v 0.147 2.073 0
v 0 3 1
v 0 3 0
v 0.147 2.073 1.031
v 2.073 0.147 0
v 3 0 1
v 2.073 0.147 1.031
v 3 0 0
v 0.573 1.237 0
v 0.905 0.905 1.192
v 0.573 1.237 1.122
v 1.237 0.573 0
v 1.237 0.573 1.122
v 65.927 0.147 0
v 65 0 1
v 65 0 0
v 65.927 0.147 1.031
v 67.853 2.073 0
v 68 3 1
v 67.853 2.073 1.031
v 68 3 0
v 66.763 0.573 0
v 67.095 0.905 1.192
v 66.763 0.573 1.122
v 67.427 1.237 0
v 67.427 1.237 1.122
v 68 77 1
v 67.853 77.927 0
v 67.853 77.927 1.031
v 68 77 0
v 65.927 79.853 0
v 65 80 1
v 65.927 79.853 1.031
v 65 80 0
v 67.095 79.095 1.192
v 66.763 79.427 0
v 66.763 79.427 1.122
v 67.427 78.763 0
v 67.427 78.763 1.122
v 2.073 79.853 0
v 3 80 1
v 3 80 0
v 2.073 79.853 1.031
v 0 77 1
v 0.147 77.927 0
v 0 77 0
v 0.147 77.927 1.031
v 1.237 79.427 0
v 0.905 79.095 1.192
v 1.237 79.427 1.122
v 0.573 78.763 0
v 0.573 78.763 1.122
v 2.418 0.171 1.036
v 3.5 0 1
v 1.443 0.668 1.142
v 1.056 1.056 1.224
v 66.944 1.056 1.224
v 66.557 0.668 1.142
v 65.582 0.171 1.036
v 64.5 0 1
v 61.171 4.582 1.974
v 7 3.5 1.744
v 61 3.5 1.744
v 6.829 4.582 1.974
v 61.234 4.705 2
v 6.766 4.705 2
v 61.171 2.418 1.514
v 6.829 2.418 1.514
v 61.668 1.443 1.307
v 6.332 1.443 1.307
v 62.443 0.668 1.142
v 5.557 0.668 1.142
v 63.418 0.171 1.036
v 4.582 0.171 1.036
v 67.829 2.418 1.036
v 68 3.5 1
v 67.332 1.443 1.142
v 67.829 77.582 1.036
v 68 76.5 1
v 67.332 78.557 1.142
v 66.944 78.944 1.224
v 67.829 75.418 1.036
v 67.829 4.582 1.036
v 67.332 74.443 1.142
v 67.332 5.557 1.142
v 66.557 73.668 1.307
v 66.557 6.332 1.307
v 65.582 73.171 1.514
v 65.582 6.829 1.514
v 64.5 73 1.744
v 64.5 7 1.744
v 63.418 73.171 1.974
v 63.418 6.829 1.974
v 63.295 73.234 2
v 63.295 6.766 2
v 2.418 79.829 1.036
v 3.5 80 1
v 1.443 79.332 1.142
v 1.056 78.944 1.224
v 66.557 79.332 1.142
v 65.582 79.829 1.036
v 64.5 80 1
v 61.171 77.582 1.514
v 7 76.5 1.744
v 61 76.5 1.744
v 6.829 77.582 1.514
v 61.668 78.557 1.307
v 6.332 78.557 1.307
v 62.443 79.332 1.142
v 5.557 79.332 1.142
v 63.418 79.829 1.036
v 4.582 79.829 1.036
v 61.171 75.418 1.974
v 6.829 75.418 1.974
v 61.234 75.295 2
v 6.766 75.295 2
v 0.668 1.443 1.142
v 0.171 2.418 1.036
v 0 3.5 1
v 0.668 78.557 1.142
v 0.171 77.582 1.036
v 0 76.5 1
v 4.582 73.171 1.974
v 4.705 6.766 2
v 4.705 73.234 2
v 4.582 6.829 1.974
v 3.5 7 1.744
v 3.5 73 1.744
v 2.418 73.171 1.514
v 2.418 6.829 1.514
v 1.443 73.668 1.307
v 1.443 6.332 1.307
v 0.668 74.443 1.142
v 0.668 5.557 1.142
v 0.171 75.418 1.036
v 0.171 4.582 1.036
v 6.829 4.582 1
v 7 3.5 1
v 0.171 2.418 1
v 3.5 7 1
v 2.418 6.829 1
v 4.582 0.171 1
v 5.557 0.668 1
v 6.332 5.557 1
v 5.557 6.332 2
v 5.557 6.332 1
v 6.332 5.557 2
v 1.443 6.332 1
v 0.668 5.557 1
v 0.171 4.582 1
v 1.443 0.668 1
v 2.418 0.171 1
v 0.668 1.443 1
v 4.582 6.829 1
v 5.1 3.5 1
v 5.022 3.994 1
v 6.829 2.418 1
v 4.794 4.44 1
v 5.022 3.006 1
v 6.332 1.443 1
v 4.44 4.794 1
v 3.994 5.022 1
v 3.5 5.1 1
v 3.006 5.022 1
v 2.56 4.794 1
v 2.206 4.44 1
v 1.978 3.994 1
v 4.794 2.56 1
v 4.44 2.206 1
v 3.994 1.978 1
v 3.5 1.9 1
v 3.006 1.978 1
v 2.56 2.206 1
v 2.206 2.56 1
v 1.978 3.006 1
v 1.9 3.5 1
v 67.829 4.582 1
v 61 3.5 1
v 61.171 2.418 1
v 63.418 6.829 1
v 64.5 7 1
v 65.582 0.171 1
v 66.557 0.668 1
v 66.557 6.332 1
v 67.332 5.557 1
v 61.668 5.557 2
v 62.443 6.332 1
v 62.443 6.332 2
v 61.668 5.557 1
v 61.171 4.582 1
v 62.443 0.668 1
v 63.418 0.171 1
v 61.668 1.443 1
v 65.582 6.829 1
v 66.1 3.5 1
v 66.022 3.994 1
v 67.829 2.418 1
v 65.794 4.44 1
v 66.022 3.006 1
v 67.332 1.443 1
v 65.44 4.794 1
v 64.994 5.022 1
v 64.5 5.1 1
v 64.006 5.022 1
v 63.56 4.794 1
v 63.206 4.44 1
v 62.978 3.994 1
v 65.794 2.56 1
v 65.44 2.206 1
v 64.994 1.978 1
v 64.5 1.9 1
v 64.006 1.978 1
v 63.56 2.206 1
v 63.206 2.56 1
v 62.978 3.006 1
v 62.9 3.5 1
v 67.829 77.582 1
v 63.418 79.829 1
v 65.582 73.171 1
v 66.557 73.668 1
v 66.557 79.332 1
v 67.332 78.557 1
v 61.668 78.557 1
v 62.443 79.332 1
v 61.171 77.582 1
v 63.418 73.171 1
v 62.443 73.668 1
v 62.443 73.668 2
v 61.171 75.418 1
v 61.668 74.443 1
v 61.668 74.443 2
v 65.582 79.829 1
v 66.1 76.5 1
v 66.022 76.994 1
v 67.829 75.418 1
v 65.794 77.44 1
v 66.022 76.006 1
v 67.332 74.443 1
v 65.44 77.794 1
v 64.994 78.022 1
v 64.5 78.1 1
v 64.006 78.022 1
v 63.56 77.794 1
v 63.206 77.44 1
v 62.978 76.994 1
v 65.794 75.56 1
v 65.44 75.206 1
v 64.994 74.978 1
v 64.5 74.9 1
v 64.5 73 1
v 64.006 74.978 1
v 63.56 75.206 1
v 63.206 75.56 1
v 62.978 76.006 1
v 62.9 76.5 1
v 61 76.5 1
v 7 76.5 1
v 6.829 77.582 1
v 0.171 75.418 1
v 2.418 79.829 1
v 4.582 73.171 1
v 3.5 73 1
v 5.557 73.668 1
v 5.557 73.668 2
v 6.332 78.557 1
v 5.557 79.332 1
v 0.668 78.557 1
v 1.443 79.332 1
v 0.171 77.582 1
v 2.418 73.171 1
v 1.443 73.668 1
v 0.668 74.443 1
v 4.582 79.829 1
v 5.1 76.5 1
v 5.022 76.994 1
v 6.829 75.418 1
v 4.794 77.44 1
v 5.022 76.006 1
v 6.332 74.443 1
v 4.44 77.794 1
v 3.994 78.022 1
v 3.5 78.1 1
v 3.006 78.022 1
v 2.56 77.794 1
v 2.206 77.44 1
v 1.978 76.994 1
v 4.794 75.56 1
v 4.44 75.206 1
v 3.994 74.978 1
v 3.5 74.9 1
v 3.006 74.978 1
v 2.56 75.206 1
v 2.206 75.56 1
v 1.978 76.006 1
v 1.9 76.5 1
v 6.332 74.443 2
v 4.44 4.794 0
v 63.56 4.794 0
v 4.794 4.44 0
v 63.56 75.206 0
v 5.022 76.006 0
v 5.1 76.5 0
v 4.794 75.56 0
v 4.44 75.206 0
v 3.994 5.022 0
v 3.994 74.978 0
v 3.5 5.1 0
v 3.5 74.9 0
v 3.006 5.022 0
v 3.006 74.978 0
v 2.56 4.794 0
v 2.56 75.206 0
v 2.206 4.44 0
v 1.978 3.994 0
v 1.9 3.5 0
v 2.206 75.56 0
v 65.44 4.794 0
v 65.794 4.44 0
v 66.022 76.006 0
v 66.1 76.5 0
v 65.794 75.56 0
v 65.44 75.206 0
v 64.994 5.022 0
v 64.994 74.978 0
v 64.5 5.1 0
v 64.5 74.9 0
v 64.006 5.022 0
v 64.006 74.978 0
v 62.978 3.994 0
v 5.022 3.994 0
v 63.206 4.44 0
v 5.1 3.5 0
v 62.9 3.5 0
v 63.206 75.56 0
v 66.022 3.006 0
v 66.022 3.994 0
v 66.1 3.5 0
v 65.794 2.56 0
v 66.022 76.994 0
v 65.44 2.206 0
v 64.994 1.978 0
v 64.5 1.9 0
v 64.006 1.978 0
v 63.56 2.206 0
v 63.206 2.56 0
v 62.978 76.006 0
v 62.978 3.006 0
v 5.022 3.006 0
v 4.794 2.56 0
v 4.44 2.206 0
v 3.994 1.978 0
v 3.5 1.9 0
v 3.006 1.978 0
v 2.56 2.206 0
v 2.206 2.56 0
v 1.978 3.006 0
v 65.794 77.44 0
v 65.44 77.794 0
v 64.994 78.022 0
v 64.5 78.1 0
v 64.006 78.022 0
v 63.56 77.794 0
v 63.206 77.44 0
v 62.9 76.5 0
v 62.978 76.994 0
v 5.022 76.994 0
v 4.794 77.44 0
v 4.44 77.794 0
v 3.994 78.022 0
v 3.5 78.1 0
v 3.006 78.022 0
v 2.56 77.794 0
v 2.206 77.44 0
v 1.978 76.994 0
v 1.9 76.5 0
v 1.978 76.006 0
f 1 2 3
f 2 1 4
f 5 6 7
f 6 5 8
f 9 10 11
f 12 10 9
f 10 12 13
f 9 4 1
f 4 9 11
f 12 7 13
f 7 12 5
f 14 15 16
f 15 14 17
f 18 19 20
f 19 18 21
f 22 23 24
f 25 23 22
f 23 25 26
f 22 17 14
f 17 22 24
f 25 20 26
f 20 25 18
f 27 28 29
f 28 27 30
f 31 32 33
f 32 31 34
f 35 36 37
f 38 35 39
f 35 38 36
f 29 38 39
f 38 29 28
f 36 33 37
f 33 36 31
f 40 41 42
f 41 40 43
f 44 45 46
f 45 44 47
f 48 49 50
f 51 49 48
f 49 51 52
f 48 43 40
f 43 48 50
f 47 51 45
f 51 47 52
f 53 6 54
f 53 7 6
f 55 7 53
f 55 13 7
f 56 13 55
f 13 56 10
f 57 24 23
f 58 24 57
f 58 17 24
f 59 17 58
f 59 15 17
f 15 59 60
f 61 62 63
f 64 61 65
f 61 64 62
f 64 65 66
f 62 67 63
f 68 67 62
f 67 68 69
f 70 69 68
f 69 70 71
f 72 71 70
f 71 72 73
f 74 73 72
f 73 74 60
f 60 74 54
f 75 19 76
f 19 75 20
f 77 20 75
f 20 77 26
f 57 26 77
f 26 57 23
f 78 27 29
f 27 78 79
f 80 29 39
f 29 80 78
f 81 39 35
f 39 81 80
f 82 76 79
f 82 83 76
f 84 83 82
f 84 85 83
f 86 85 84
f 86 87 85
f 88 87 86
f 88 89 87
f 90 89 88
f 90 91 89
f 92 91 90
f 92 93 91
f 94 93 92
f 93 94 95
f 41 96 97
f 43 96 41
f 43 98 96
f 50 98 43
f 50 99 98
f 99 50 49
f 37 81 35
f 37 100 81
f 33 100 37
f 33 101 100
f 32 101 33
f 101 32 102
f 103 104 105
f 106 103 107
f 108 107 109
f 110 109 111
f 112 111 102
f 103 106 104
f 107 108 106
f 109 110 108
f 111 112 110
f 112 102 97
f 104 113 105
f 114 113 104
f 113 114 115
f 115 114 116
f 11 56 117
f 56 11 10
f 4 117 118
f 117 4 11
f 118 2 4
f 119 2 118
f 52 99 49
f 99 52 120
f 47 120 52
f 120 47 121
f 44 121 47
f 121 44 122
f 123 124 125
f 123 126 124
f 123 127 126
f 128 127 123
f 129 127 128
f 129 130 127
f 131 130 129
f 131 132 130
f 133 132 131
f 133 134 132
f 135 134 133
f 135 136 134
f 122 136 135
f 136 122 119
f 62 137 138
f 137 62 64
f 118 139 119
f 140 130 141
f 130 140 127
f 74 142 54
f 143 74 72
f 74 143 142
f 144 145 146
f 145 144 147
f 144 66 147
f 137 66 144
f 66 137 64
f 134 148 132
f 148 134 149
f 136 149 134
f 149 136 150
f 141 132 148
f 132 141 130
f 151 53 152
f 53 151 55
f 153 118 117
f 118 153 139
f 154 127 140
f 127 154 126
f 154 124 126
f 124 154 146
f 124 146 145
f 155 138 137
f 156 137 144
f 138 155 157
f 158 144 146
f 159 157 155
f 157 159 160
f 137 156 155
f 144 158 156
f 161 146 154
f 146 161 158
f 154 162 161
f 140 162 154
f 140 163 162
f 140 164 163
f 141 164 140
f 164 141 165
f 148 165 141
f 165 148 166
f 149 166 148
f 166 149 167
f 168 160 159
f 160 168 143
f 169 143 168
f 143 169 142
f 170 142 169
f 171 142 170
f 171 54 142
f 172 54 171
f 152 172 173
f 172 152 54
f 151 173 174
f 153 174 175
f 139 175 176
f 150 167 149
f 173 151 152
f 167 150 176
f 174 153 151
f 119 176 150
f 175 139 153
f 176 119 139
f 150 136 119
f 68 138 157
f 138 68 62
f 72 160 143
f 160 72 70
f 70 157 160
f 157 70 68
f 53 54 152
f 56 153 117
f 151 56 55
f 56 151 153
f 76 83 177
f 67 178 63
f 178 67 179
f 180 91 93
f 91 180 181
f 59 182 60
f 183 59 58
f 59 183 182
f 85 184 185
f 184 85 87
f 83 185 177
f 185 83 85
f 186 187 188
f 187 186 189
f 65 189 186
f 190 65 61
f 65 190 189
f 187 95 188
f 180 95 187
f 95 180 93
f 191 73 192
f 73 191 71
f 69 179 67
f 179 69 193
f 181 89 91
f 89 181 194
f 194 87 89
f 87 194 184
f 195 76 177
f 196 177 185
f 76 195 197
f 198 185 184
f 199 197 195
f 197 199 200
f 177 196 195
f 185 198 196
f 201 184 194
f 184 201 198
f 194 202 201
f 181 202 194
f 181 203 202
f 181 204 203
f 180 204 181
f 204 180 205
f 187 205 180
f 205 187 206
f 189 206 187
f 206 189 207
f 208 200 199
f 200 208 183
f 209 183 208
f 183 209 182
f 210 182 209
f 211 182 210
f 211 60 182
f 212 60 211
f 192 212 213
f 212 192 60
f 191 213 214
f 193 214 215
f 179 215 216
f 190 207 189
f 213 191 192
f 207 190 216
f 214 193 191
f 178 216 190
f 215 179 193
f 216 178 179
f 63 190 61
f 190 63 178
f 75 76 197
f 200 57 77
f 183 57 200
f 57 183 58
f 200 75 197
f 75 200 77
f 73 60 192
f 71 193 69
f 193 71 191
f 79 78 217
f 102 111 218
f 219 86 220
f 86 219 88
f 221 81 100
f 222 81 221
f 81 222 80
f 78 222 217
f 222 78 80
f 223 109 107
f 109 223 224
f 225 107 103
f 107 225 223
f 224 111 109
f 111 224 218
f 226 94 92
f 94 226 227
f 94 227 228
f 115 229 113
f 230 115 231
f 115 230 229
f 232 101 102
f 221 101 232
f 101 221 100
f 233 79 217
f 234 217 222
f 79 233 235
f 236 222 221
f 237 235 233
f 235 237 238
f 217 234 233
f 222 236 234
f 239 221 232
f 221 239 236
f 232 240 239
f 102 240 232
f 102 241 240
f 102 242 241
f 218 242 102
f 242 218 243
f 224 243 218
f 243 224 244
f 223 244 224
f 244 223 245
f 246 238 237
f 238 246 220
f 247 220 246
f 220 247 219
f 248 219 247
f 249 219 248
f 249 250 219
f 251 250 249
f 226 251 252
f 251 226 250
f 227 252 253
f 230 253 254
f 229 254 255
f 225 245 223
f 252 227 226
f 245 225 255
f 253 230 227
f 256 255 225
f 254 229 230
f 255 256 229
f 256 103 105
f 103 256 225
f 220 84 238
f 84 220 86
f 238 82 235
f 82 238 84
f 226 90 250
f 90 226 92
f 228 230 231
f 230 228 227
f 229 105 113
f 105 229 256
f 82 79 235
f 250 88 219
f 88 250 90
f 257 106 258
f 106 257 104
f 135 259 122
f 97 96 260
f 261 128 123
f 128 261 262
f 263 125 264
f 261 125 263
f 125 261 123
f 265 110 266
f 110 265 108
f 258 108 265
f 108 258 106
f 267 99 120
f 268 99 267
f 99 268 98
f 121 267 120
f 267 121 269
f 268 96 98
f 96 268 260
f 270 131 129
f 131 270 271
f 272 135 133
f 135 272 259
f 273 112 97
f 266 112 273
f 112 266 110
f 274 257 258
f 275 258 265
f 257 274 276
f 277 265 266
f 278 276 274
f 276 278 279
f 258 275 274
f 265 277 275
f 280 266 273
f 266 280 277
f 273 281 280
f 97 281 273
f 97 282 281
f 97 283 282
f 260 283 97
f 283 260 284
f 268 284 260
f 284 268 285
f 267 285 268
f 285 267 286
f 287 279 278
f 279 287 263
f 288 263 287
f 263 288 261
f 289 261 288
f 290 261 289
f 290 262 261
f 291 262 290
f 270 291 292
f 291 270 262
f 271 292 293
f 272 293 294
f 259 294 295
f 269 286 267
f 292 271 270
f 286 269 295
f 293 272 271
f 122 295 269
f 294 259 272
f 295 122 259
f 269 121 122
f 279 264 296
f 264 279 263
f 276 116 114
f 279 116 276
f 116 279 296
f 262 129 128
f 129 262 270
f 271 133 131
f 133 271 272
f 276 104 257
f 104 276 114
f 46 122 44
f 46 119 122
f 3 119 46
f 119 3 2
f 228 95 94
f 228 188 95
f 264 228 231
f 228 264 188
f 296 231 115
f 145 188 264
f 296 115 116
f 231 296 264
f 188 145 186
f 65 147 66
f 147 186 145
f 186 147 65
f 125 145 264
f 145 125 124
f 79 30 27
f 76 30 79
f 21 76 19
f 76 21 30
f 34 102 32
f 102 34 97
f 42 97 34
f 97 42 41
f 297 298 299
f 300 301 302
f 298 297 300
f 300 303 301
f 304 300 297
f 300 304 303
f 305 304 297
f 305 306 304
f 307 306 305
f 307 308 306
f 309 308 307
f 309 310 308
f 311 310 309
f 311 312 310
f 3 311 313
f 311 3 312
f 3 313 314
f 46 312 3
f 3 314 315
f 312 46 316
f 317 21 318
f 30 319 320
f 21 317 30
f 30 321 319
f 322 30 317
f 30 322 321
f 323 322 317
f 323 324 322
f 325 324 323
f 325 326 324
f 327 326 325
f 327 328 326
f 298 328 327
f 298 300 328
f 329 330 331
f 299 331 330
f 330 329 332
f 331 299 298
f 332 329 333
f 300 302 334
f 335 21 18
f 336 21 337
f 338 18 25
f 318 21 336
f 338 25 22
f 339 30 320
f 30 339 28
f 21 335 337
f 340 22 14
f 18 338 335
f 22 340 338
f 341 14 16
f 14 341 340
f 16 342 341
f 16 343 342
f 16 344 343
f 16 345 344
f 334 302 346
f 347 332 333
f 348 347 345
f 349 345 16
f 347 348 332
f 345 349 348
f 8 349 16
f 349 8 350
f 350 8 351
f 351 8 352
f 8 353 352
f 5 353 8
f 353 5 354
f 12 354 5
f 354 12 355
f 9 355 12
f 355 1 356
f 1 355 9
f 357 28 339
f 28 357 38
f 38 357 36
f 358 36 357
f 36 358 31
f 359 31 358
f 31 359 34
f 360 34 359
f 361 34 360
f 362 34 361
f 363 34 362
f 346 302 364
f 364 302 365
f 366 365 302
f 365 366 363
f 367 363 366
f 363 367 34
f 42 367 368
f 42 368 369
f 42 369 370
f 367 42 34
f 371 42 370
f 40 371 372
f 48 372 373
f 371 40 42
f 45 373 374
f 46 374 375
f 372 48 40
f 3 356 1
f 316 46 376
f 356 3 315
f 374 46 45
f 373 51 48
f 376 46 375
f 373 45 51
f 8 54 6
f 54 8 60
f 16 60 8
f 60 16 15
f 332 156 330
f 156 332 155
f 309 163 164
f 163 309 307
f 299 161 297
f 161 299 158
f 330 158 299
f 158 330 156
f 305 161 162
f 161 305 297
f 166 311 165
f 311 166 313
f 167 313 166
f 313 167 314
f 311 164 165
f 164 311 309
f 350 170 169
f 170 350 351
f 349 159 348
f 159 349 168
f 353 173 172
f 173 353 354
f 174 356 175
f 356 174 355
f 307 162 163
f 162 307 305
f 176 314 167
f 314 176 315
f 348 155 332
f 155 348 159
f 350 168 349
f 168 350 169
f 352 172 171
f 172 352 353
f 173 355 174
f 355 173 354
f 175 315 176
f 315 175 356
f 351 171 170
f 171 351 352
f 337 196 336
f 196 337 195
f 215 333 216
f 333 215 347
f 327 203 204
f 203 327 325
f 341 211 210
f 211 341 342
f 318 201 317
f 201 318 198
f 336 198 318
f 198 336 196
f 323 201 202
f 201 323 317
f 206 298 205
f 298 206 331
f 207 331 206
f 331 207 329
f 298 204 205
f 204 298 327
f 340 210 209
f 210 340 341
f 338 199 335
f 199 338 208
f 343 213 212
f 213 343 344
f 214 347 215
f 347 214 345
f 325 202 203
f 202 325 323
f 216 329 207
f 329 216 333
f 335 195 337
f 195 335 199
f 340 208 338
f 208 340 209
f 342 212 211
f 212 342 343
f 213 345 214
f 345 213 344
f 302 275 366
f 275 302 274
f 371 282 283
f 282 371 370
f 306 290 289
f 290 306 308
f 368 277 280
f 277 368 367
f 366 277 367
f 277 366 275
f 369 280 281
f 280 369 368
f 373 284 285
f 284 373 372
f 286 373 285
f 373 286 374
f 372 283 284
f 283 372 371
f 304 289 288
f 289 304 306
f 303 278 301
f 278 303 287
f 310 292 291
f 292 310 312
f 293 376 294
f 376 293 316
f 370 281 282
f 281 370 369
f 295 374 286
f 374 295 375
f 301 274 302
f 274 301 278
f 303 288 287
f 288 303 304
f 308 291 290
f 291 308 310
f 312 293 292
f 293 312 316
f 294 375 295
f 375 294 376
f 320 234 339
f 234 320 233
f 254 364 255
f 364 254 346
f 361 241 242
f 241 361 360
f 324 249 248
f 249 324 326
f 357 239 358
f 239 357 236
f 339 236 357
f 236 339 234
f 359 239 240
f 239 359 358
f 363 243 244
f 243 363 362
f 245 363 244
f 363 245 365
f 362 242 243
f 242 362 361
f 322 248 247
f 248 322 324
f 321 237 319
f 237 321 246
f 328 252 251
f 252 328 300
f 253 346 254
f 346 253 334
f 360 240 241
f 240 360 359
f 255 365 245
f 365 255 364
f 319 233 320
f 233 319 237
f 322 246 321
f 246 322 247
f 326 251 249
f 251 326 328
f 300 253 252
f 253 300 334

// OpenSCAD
// file: _params.scad
$fn = 20;

w = 68;
h = 80;

// tloušťka stěny
t = 2.5;

// od opačné strany než počátek
antenna_x = 18.5; 
antenna_w = 7;
antenna_h = 5;
// file: _utils.scad
module rounderer(x, y, rot, r = 3) {
  //r = 3;
  l = 20;
  
  translate([x, y, 0]) {
    rotate([0, 0, rot]){
      translate([-r, -r, -l]) {
        difference() {
          cube([2*r, 2*r, 2*l]);
          cylinder(2*l, r, r, false);
        }
      }
    }
  }
}



module trimmer(a, rot) {
  
  l = 200;
  
  rotate([a,0, rot])
    translate([-l/2, -l/2, 0])
      cube([l, l, 10]);
  
  
}



trimmer(10, 90);
// file: _parts.scad
use <_utils.scad>
include <_params.scad>

module panel() {
  
    
   difference() {
       
    union() {
      // plášť
     difference() {
        cube([w, h, 2]);
        
        union() {
          rounderer(0,0,180);  
          rounderer(w,0,-90);  
          rounderer(w,h,0);  
          rounderer(0,h,90);  
        }
        
        // ukos
        translate([0,0,1]){
          union() {
            trimmer(12, 0);
            translate([w,0,0]) trimmer(12, 90);
            translate([w,h,0]) trimmer(12, 180);
            translate([0,h,0]) trimmer(12, -90);
          }
        }
        
        // zapuštění pro šrouby
        translate([0,0,1]){
          translate([3.5,3.5,0]) cylinder(10, 3.5, 3.5, false);
          translate([w-3.5,3.5,0]) cylinder(10, 3.5, 3.5, false);
          translate([w-3.5,h-3.5,0]) cylinder(10, 3.5, 3.5, false);
          translate([3.5,h-3.5,0]) cylinder(10, 3.5, 3.5, false);
        }
      }
    }
    
    // vrtani
    translate([3.5,3.5,0]) cylinder(10, 3.2/2, 3.2/2, false);
    translate([w-3.5,3.5,0]) cylinder(10, 3.2/2, 3.2/2, false);
    translate([3.5,h-3.5,0]) cylinder(10, 3.2/2, 3.2/2, false);
    translate([w-3.5,h-3.5,0]) cylinder(10, 3.2/2, 3.2/2, false);
    
  }
  
}



module housing(d) {
  
   difference() {
       
    union() {
      // plášť
     difference() {
        cube([w, h, d]);
        
        union() {
          rounderer(0,0,180);  
          rounderer(w,0,-90);  
          rounderer(w,h,0);  
          rounderer(0,h,90);  
        }
        
        translate([t,t,0])
          cube([w-2*t, h-2*t, d]);
      }

      // domečky pro šrouby
      translate([3.5,3.5,0]) cylinder(d, 3.5, 3.5, false);
      translate([w-3.5,3.5,0]) cylinder(d, 3.5, 3.5, false);
      translate([w-3.5,h-3.5,0]) cylinder(d, 3.5, 3.5, false);
      translate([3.5,h-3.5,0]) cylinder(d, 3.5, 3.5, false);
    }
    
    // vrtani
    translate([3.5,3.5,0]) cylinder(d, 3.2/2, 3.2/2, false);
    translate([w-3.5,3.5,0]) cylinder(d, 3.2/2, 3.2/2, false);
    translate([3.5,h-3.5,0]) cylinder(d, 3.2/2, 3.2/2, false);
    translate([w-3.5,h-3.5,0]) cylinder(d, 3.2/2, 3.2/2, false);
    
  }

}
// main file
use <_parts.scad>
use <_utils.scad>
include <_params.scad>

module btm_panel() {

    panel();  
}



btm_panel();
